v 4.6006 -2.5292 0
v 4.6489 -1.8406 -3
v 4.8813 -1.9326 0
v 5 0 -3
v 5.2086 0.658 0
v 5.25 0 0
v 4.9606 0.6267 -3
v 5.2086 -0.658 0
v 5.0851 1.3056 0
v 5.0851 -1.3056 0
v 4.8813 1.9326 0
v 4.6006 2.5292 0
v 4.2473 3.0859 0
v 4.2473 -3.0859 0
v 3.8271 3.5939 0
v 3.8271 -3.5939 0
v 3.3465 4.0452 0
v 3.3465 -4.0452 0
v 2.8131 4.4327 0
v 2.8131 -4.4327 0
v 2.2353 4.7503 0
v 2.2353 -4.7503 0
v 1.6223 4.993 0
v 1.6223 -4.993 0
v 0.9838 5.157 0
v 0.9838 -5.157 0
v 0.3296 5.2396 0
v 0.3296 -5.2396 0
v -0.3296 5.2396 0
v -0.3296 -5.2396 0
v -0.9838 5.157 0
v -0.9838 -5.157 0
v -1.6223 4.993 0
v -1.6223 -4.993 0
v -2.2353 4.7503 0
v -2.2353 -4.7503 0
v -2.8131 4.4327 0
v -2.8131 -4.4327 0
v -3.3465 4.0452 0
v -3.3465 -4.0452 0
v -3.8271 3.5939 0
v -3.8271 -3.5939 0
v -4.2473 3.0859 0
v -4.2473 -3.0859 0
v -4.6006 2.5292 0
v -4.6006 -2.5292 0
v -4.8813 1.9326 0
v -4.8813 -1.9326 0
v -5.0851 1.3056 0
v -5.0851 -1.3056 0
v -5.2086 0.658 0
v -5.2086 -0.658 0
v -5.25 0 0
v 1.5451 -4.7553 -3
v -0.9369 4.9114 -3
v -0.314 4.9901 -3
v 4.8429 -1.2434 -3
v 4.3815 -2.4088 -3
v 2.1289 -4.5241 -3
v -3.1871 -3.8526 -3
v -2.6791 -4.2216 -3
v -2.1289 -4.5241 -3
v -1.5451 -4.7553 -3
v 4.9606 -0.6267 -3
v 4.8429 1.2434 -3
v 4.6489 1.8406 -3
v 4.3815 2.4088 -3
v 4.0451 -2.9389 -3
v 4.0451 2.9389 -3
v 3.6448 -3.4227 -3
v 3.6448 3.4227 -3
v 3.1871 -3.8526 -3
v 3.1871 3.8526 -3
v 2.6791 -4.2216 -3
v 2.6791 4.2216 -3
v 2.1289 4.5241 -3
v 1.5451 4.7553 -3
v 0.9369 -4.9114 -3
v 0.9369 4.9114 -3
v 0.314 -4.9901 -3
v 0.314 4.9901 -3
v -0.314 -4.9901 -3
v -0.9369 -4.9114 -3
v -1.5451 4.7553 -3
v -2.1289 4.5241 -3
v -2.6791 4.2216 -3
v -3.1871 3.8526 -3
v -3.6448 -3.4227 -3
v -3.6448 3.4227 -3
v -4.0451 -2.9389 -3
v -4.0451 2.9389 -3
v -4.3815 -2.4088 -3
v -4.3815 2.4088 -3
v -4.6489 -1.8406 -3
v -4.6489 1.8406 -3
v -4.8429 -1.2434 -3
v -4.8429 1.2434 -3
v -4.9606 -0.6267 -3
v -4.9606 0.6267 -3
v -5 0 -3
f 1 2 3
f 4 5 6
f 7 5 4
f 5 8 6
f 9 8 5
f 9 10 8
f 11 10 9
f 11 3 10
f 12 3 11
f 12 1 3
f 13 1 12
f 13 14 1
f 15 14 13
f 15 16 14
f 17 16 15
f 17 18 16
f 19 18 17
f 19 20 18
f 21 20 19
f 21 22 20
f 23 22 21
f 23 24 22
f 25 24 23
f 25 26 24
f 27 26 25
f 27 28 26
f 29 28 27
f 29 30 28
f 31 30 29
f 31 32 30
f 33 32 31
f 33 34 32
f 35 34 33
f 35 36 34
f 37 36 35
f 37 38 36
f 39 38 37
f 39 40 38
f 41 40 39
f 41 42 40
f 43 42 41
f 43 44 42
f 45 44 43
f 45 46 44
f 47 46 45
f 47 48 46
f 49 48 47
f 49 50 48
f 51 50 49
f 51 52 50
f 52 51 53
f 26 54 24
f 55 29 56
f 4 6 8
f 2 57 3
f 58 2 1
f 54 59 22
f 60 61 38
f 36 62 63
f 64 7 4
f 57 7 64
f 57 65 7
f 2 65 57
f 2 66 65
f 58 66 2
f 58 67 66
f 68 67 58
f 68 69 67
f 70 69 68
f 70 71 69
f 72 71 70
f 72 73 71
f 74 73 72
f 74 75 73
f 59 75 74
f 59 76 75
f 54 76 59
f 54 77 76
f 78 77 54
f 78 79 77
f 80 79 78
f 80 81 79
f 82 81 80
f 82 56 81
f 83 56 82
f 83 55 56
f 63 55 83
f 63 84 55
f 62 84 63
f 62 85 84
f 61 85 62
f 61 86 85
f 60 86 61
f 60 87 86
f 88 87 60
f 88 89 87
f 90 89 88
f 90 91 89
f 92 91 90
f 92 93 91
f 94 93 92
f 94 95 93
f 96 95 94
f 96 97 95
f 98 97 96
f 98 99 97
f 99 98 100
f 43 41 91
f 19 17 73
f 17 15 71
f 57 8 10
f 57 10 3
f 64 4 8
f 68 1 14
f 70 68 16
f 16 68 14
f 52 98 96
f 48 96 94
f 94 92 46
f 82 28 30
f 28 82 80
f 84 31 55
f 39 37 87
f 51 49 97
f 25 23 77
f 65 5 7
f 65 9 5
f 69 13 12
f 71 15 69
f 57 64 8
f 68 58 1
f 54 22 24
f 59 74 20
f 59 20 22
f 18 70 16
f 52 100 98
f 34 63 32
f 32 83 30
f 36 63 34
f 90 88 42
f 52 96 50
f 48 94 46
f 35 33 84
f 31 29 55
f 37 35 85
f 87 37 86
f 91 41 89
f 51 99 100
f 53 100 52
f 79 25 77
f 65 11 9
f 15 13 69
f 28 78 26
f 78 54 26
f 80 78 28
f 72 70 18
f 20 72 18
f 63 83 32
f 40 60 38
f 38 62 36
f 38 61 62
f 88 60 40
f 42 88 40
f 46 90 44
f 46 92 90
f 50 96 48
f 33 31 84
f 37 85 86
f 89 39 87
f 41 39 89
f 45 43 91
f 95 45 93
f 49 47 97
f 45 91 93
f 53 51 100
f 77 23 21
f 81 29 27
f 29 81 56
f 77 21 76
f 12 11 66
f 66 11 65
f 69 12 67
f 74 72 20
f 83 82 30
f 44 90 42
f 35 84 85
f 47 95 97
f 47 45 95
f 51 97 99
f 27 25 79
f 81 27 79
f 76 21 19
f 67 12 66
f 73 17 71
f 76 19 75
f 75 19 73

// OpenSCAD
$fn = 50;


difference() {
	union() {
		translate(v = [0, 0, -3.0000000000]) {
			cylinder(h = 3, r1 = 5.0000000000, r2 = 5.2500000000);
		}
	}
	union();
}
